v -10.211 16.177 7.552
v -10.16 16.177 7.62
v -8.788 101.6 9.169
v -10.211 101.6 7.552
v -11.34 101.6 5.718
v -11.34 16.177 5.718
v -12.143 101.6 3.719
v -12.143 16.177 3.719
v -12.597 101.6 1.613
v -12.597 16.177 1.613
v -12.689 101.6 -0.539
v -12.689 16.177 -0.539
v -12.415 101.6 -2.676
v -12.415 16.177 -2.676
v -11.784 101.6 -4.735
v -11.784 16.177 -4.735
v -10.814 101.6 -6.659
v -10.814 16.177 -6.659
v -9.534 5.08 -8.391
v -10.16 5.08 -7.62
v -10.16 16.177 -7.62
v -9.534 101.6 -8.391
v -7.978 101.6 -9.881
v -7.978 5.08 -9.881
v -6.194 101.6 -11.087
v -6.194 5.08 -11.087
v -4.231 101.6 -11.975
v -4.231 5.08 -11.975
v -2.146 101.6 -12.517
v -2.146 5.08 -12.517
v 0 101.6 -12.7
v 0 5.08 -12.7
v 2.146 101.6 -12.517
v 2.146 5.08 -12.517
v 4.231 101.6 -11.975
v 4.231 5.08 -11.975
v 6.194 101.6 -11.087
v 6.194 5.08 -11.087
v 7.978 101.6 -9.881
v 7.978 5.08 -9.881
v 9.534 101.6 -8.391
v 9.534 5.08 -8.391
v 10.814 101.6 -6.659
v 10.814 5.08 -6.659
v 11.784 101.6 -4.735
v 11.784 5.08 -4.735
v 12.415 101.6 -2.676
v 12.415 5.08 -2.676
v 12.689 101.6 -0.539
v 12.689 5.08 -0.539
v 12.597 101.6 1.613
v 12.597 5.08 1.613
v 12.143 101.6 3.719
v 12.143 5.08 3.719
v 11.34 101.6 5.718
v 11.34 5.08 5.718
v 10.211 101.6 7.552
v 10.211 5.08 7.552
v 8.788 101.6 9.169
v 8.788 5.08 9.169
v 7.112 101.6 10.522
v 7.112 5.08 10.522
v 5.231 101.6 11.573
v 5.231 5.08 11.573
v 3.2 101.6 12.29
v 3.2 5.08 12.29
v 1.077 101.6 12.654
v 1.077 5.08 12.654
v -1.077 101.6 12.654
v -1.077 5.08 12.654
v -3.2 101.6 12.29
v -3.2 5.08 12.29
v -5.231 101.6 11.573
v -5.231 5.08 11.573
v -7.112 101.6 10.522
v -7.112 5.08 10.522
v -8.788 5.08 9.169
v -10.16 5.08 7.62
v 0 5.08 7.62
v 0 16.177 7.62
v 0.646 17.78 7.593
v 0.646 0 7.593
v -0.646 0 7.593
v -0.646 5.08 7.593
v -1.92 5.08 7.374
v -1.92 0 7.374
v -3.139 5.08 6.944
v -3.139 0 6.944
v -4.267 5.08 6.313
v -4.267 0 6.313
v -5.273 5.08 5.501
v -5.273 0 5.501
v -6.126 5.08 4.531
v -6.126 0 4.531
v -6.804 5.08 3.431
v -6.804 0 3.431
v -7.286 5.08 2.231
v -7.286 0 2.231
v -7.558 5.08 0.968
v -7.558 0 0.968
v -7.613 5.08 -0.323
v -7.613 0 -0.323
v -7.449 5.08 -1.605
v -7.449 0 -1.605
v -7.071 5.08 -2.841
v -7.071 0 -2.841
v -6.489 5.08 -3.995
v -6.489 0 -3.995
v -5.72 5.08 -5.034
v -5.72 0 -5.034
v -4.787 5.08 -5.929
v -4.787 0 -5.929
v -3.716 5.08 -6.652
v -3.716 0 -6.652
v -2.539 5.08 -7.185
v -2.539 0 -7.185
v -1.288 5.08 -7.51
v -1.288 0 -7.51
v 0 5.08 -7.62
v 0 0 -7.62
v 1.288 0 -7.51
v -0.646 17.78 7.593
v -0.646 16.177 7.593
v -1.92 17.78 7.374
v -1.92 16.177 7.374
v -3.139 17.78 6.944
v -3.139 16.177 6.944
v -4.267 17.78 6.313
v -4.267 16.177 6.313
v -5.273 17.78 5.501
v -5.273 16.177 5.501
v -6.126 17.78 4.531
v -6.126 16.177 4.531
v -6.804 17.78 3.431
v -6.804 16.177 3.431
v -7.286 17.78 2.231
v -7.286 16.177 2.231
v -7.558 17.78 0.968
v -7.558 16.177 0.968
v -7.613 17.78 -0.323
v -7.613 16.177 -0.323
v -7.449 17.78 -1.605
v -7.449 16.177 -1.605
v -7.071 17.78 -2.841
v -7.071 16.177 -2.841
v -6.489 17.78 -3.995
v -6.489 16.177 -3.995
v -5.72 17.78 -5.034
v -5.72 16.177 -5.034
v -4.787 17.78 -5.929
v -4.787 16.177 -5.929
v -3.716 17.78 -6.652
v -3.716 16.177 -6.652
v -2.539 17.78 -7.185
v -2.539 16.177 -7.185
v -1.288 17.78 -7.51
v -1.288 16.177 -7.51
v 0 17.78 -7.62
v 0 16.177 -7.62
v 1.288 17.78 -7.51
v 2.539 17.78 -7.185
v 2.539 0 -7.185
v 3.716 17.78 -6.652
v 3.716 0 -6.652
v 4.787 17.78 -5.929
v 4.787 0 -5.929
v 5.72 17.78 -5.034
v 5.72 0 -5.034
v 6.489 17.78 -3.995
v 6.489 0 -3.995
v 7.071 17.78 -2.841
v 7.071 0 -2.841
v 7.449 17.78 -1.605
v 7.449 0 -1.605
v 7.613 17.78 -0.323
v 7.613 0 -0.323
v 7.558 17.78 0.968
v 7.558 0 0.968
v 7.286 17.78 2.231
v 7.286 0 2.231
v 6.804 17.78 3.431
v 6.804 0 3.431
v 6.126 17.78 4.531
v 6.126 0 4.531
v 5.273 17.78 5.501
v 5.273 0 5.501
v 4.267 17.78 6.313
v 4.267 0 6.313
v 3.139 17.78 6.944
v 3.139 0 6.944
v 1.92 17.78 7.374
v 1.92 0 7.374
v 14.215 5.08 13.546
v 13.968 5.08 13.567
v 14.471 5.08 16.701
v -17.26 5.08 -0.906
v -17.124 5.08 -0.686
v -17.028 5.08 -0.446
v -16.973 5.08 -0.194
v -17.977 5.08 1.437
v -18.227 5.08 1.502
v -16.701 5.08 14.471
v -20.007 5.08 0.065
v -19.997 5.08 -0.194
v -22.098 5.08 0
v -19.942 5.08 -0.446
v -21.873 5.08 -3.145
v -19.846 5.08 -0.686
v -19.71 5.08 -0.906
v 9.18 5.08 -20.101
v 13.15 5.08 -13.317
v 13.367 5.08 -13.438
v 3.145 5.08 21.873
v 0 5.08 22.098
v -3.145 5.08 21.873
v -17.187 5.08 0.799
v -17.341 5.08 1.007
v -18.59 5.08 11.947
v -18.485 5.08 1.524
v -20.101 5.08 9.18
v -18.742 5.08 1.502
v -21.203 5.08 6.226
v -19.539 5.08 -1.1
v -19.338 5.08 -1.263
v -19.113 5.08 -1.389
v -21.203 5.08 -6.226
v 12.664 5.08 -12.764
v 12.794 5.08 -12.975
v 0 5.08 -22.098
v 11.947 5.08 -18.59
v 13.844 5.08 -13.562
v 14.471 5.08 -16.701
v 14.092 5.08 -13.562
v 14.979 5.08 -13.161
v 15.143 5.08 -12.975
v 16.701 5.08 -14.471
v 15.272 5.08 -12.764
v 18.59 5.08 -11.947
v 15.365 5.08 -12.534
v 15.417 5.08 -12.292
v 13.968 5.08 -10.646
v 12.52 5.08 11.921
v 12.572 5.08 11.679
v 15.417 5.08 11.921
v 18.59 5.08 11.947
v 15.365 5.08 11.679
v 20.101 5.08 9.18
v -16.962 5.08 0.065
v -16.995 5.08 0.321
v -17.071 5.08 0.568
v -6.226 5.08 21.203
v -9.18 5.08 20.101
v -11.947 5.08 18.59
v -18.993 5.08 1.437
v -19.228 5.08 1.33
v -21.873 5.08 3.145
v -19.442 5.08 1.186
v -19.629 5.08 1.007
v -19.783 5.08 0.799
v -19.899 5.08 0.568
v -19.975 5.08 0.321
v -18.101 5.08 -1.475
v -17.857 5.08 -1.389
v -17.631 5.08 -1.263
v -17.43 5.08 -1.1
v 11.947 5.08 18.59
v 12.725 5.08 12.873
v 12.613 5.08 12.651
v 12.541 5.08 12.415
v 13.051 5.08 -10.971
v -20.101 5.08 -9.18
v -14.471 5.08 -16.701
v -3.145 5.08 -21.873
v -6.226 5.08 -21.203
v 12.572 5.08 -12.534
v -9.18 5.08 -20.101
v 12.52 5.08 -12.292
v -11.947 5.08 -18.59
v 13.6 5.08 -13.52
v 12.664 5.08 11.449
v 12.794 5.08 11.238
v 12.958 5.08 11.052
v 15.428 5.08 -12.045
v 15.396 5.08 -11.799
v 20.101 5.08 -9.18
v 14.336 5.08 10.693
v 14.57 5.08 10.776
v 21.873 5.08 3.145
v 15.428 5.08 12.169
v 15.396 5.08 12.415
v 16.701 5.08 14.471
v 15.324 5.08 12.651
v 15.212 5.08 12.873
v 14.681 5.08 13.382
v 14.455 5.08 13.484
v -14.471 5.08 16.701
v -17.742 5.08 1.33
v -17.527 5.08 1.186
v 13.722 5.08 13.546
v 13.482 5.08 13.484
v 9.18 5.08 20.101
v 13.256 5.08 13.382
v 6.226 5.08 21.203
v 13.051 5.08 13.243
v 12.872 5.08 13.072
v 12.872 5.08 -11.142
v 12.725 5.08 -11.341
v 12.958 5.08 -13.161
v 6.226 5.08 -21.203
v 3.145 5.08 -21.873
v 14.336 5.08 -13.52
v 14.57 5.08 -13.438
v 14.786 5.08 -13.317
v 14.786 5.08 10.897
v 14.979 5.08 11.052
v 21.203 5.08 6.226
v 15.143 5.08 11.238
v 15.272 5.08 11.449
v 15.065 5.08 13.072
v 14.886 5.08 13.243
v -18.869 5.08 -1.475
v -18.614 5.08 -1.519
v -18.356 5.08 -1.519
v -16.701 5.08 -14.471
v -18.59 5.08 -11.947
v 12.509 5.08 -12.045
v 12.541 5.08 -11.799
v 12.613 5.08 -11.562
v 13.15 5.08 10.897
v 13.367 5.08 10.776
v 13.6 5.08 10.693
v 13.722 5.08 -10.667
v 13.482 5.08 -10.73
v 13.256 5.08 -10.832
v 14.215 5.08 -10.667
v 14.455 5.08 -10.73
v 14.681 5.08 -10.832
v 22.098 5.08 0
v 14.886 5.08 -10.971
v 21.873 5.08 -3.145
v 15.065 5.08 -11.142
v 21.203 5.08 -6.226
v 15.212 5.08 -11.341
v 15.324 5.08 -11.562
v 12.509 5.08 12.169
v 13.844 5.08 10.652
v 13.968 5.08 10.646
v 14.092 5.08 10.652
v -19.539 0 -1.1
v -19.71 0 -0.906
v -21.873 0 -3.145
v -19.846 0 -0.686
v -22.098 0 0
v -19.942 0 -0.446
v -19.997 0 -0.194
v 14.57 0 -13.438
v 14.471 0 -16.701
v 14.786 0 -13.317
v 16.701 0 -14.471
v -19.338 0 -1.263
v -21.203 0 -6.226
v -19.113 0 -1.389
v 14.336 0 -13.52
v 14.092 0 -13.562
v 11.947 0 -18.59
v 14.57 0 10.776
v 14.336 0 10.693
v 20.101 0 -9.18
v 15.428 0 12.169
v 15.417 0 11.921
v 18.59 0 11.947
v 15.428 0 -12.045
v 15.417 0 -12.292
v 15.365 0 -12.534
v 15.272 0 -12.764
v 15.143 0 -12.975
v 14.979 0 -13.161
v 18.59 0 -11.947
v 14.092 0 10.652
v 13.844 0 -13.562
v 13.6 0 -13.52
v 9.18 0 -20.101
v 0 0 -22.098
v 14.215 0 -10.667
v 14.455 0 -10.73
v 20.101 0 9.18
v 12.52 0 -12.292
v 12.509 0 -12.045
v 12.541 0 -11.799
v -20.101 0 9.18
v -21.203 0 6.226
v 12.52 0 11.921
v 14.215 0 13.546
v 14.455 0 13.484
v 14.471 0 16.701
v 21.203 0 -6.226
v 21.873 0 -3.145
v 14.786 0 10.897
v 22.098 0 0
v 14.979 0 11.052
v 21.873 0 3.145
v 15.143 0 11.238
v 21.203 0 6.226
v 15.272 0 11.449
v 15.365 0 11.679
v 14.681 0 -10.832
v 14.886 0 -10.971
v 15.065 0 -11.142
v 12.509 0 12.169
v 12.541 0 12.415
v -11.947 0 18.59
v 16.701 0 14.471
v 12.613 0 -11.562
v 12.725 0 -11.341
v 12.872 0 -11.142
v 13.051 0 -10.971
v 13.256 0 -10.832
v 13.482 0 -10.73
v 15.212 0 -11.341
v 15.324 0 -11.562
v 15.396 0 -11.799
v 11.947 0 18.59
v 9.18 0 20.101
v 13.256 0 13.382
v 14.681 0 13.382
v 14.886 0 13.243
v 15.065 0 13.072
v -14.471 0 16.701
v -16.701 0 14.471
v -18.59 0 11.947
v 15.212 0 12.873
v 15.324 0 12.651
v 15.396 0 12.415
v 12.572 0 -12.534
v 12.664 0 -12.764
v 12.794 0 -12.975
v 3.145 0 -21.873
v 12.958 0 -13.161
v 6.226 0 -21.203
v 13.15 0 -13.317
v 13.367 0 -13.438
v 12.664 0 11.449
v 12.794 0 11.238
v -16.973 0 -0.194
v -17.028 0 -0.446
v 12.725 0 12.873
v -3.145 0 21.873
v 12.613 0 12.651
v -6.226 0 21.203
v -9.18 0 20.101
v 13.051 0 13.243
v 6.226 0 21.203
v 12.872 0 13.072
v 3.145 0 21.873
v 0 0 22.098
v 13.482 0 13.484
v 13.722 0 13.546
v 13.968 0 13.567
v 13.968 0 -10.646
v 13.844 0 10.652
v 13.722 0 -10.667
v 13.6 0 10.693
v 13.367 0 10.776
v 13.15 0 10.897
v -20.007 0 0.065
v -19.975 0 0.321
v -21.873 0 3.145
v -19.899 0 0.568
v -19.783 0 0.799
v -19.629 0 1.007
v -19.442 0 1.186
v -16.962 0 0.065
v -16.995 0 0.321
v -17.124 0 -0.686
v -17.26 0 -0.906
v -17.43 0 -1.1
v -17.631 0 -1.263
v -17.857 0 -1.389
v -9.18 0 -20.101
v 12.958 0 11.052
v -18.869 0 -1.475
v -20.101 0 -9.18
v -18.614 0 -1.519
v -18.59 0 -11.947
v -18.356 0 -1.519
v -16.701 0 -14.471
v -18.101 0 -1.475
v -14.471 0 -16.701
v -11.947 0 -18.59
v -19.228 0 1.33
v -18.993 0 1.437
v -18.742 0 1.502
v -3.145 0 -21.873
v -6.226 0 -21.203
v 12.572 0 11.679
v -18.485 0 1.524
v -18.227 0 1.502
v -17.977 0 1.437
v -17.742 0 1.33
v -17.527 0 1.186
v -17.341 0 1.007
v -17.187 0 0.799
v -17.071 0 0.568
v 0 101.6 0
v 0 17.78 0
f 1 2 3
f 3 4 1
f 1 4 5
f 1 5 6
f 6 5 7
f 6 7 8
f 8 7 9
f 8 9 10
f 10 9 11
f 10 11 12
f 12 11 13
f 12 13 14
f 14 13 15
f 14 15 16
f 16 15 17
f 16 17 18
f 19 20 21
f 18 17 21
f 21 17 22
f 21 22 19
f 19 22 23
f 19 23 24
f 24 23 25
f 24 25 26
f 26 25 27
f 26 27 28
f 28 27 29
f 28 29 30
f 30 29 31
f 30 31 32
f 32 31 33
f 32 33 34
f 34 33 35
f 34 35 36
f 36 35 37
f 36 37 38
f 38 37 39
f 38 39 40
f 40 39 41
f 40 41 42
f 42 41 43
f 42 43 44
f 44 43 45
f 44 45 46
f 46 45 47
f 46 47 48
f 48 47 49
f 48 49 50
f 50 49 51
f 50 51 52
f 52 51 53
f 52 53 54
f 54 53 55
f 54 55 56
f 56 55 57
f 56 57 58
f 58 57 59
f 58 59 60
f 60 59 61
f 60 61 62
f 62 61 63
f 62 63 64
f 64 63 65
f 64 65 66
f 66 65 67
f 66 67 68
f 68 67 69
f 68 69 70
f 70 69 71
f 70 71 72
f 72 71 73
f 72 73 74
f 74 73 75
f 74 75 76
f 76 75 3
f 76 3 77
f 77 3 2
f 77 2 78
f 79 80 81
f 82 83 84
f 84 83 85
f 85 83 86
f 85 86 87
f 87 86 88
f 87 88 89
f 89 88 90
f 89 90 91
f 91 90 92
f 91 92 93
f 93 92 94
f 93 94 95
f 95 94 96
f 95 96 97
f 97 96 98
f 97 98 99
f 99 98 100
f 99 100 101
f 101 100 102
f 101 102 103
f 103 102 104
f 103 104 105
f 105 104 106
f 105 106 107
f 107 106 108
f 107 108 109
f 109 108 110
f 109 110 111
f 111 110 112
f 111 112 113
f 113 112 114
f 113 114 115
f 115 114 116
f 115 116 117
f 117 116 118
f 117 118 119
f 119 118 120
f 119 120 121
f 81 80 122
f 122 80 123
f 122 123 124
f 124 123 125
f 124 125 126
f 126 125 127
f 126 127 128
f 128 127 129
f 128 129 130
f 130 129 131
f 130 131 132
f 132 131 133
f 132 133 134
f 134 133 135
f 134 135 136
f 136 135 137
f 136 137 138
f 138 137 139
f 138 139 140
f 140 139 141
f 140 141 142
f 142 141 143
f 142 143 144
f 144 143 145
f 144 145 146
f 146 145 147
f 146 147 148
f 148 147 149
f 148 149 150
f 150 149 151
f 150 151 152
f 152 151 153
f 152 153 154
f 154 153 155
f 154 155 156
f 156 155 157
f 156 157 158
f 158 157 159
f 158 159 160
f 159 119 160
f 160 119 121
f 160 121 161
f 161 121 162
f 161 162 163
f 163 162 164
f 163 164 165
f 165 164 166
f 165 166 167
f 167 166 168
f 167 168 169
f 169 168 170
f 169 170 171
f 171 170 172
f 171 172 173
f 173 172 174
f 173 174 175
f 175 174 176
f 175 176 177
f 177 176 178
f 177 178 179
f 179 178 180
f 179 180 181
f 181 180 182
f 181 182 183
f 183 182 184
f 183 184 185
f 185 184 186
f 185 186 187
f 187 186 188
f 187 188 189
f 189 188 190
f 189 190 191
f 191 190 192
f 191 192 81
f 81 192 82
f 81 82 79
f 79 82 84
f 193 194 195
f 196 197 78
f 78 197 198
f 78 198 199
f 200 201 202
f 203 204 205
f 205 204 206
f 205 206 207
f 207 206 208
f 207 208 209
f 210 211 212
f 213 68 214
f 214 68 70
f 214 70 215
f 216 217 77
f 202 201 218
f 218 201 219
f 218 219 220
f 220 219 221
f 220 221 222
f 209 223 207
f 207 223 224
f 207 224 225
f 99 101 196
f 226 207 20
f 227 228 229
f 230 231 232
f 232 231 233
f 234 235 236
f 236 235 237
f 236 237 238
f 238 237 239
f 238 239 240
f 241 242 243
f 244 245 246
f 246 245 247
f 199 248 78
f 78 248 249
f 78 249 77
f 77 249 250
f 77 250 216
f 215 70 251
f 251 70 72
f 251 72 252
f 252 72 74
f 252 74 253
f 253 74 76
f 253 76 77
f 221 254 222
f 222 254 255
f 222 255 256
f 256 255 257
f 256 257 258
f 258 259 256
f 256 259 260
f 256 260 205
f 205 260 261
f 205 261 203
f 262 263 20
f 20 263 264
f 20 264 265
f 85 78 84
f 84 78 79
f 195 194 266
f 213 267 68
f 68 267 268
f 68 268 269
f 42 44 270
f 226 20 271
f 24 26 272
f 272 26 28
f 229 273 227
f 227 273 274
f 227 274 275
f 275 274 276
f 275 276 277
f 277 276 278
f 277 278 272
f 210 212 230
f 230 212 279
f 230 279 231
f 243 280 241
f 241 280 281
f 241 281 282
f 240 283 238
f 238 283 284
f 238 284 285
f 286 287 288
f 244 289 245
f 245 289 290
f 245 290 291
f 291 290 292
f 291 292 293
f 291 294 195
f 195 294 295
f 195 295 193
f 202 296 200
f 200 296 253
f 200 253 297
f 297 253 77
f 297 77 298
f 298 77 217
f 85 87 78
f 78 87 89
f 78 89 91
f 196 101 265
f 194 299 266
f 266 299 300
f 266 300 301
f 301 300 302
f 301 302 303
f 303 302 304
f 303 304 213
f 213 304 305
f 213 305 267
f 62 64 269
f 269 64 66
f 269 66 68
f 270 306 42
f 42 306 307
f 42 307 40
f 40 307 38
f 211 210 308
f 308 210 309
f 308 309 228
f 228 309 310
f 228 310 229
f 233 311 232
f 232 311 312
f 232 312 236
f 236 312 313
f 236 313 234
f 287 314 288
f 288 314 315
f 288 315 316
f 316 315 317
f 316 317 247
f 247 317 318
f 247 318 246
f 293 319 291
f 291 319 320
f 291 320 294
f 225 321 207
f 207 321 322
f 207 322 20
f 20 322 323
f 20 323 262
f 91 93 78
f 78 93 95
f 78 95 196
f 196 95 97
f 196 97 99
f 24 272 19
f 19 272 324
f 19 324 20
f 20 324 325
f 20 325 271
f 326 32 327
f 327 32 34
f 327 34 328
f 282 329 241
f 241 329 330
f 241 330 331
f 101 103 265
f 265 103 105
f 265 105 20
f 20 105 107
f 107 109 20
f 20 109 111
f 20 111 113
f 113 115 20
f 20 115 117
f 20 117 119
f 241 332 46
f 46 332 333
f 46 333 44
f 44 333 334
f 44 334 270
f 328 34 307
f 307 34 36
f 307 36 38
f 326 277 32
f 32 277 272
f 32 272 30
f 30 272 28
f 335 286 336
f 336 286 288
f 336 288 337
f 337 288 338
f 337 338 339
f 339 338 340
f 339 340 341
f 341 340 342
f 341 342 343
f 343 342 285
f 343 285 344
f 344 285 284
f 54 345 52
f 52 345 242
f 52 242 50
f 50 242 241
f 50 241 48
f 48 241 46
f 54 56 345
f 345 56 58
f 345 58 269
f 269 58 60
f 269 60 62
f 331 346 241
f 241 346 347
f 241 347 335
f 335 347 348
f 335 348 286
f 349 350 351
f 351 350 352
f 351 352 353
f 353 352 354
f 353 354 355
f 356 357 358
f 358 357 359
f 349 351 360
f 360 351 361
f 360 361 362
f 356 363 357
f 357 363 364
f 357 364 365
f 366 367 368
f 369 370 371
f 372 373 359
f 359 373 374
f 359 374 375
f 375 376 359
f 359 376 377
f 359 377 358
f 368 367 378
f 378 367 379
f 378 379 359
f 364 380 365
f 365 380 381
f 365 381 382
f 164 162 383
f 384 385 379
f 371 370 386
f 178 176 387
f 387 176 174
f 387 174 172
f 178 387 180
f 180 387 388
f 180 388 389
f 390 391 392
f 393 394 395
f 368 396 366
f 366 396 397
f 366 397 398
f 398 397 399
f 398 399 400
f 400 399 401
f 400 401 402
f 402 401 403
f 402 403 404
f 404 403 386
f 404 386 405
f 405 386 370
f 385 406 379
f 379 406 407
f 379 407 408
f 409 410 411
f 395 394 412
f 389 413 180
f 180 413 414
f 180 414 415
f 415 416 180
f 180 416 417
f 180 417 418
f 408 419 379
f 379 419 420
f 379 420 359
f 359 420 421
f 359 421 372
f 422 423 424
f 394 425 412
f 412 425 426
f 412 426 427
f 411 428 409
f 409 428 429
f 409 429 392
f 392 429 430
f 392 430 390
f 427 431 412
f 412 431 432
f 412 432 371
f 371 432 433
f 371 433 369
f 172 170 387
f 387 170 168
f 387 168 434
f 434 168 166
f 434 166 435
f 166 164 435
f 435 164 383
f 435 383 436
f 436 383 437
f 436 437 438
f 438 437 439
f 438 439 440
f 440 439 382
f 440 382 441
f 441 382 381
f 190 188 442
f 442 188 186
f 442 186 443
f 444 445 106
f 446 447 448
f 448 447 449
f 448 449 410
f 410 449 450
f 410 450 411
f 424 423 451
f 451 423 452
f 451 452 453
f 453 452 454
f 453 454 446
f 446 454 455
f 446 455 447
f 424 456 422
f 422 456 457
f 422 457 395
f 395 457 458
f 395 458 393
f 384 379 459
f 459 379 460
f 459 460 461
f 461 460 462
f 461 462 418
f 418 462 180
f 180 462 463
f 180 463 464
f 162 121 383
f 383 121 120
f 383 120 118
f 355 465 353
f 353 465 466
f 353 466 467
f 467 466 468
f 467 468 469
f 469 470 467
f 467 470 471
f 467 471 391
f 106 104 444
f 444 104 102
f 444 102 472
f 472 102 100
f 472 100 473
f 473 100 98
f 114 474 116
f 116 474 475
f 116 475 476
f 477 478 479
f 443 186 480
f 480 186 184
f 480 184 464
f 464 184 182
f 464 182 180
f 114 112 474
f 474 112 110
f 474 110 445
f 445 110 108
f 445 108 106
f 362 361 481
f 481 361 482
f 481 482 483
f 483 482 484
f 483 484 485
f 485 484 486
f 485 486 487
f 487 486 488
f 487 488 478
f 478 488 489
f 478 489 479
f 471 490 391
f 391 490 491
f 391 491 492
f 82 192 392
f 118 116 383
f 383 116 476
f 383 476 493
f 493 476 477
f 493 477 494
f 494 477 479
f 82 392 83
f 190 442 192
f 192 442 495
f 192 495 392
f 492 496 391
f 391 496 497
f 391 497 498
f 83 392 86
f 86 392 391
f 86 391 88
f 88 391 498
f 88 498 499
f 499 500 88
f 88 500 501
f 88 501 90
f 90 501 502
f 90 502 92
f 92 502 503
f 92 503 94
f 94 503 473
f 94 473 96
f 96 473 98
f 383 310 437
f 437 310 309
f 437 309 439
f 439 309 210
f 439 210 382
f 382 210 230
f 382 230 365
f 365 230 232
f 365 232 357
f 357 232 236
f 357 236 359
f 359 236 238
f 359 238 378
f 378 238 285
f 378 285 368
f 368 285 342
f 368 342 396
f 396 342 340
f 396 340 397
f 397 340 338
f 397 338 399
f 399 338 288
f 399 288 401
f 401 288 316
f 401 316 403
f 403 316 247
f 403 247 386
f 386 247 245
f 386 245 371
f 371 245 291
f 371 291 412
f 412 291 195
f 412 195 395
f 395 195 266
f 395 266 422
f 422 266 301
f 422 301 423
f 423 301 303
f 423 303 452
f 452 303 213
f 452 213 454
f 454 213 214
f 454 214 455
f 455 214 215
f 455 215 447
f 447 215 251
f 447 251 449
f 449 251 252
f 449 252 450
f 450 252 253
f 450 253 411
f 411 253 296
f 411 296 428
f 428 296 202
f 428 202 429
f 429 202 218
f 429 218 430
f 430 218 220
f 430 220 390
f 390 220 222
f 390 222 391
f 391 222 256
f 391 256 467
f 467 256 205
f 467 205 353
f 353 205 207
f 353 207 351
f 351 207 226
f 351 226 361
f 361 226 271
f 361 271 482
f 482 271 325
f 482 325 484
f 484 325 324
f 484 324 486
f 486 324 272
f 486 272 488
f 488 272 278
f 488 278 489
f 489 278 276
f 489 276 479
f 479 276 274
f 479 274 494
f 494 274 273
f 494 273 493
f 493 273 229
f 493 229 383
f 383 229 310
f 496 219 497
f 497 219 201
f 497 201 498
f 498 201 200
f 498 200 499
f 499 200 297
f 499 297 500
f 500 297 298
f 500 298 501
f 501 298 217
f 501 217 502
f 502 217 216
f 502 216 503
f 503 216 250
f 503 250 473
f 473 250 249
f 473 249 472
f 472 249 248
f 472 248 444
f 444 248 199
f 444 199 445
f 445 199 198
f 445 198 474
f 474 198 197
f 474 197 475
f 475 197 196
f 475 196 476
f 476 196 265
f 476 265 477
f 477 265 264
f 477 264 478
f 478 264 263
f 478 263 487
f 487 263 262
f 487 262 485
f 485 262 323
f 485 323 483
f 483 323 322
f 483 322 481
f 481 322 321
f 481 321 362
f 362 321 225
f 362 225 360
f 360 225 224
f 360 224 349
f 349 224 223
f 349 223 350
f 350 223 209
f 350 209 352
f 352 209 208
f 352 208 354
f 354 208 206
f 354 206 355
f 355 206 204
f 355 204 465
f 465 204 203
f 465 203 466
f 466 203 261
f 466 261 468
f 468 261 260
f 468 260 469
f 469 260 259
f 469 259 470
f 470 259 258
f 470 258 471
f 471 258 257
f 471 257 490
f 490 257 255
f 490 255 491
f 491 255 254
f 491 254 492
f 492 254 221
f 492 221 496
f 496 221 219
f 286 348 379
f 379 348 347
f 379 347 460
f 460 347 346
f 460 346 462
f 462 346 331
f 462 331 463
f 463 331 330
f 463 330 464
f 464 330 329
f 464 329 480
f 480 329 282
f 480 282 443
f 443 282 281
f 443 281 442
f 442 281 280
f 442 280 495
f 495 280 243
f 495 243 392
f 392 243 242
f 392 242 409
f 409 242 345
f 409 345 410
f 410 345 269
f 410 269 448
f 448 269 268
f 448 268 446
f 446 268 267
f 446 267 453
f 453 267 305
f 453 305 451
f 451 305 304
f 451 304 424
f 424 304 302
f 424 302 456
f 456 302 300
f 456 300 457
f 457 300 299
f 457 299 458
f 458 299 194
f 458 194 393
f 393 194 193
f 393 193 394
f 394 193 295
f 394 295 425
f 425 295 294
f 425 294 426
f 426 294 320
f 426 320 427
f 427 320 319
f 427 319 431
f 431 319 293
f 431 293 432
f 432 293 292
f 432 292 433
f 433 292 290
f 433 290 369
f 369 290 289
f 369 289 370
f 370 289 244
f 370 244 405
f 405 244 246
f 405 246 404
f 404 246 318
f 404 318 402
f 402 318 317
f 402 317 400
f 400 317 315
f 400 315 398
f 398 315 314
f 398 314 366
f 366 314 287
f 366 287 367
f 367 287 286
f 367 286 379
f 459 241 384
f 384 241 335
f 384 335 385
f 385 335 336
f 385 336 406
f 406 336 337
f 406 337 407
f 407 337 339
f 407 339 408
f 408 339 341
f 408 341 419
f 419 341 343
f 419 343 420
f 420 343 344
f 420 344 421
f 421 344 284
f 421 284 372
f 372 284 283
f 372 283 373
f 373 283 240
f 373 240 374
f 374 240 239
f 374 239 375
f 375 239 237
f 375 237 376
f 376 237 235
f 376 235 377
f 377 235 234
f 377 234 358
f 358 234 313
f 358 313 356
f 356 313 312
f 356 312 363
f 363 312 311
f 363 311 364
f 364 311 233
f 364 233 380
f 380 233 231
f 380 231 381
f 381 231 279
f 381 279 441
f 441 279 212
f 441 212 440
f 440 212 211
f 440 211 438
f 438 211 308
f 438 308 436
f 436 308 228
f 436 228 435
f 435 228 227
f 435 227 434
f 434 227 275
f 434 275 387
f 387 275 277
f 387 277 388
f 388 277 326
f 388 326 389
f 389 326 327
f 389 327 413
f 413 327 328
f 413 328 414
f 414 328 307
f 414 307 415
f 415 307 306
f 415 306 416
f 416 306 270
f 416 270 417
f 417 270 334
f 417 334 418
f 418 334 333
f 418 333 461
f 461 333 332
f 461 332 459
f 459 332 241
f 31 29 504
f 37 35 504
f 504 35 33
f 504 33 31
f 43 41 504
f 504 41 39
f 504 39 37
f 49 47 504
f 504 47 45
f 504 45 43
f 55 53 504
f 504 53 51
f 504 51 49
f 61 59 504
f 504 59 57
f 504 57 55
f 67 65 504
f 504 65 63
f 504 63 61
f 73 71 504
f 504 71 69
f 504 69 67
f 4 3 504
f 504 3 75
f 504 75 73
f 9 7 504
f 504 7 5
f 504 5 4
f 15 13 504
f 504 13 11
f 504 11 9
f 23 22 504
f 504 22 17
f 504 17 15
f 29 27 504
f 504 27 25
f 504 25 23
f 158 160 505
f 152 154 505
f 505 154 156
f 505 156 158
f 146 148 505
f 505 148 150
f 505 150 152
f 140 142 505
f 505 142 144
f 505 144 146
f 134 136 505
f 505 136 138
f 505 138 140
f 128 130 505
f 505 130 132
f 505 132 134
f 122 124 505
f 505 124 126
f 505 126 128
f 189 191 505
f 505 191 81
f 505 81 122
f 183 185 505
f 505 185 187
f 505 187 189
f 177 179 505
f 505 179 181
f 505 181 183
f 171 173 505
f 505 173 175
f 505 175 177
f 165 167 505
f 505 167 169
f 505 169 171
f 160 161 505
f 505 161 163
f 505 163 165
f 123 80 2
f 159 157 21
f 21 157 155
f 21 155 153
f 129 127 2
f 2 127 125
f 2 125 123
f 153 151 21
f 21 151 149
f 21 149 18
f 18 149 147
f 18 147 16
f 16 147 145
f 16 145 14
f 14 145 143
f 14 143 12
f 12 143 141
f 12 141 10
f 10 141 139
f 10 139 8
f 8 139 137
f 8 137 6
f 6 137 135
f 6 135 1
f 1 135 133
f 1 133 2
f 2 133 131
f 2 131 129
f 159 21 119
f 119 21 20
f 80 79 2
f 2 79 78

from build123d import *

# Parameters (mm, degrees)
SKETCH1_R           = 22.098
BOSS_EXTRUDE1_DEPTH = 5.08
SKETCH4_R           = 1.4605
SKETCH4_R_2         = 1.524
CUT_EXTRUDE1_DEPTH  = 58.42
SKETCH5_R           = 12.7
CUT_EXTRUDE2_DEPTH  = 29.21
SKETCH5_3_R         = 12.7
BOSS_EXTRUDE2_DEPTH = 101.6
SKETCH6_R           = 7.62
CUT_EXTRUDE3_DEPTH  = 17.78
SKETCH7_W           = 15.24
SKETCH7_H           = 11.096968574
CUT_EXTRUDE4_DEPTH  = 107.297710267


with BuildPart() as part:
    # Sketch1 → Boss-Extrude1 (new body)
    with BuildSketch(Plane(origin=(0, 0, 0), x_dir=(1, 0, 0), z_dir=(0, 1, 0))):
        Circle(SKETCH1_R)
    extrude(amount=BOSS_EXTRUDE1_DEPTH)

    # Sketch4 → Cut-Extrude1 (cut)
    with BuildSketch(Plane(origin=(0, 5.08, 0), x_dir=(1, 0, 0), z_dir=(0, 1, 0))):
        with Locations((13.96833752, 12.106825614)):
            Circle(SKETCH4_R)
        with Locations((13.96833752, -12.106825614)):
            Circle(SKETCH4_R)
        with Locations((-18.48485, 0)):
            Circle(SKETCH4_R_2)
    extrude(amount=-CUT_EXTRUDE1_DEPTH, mode=Mode.SUBTRACT)

    # Sketch5 → Cut-Extrude2 (cut)
    with BuildSketch(Plane.XZ):
        Circle(SKETCH5_R)
    extrude(amount=-CUT_EXTRUDE2_DEPTH, mode=Mode.SUBTRACT)

    # Sketch5<3> → Boss-Extrude2 (add)
    with BuildSketch(Plane.XZ):
        Circle(SKETCH5_3_R)
    extrude(amount=-BOSS_EXTRUDE2_DEPTH)

    # Sketch6 → Cut-Extrude3 (cut)
    with BuildSketch(Plane.XZ):
        Circle(SKETCH6_R)
    extrude(amount=-CUT_EXTRUDE3_DEPTH, mode=Mode.SUBTRACT)

    # Sketch7 → Cut-Extrude4 (cut, through all)
    with BuildSketch(Plane(origin=(0, 0, 0), x_dir=(0, 0, -1), z_dir=(1, 0, 0))):
        with Locations((0, 10.628484287)):
            Rectangle(SKETCH7_W, SKETCH7_H)
    extrude(amount=-CUT_EXTRUDE4_DEPTH, mode=Mode.SUBTRACT)


solid = part.part
